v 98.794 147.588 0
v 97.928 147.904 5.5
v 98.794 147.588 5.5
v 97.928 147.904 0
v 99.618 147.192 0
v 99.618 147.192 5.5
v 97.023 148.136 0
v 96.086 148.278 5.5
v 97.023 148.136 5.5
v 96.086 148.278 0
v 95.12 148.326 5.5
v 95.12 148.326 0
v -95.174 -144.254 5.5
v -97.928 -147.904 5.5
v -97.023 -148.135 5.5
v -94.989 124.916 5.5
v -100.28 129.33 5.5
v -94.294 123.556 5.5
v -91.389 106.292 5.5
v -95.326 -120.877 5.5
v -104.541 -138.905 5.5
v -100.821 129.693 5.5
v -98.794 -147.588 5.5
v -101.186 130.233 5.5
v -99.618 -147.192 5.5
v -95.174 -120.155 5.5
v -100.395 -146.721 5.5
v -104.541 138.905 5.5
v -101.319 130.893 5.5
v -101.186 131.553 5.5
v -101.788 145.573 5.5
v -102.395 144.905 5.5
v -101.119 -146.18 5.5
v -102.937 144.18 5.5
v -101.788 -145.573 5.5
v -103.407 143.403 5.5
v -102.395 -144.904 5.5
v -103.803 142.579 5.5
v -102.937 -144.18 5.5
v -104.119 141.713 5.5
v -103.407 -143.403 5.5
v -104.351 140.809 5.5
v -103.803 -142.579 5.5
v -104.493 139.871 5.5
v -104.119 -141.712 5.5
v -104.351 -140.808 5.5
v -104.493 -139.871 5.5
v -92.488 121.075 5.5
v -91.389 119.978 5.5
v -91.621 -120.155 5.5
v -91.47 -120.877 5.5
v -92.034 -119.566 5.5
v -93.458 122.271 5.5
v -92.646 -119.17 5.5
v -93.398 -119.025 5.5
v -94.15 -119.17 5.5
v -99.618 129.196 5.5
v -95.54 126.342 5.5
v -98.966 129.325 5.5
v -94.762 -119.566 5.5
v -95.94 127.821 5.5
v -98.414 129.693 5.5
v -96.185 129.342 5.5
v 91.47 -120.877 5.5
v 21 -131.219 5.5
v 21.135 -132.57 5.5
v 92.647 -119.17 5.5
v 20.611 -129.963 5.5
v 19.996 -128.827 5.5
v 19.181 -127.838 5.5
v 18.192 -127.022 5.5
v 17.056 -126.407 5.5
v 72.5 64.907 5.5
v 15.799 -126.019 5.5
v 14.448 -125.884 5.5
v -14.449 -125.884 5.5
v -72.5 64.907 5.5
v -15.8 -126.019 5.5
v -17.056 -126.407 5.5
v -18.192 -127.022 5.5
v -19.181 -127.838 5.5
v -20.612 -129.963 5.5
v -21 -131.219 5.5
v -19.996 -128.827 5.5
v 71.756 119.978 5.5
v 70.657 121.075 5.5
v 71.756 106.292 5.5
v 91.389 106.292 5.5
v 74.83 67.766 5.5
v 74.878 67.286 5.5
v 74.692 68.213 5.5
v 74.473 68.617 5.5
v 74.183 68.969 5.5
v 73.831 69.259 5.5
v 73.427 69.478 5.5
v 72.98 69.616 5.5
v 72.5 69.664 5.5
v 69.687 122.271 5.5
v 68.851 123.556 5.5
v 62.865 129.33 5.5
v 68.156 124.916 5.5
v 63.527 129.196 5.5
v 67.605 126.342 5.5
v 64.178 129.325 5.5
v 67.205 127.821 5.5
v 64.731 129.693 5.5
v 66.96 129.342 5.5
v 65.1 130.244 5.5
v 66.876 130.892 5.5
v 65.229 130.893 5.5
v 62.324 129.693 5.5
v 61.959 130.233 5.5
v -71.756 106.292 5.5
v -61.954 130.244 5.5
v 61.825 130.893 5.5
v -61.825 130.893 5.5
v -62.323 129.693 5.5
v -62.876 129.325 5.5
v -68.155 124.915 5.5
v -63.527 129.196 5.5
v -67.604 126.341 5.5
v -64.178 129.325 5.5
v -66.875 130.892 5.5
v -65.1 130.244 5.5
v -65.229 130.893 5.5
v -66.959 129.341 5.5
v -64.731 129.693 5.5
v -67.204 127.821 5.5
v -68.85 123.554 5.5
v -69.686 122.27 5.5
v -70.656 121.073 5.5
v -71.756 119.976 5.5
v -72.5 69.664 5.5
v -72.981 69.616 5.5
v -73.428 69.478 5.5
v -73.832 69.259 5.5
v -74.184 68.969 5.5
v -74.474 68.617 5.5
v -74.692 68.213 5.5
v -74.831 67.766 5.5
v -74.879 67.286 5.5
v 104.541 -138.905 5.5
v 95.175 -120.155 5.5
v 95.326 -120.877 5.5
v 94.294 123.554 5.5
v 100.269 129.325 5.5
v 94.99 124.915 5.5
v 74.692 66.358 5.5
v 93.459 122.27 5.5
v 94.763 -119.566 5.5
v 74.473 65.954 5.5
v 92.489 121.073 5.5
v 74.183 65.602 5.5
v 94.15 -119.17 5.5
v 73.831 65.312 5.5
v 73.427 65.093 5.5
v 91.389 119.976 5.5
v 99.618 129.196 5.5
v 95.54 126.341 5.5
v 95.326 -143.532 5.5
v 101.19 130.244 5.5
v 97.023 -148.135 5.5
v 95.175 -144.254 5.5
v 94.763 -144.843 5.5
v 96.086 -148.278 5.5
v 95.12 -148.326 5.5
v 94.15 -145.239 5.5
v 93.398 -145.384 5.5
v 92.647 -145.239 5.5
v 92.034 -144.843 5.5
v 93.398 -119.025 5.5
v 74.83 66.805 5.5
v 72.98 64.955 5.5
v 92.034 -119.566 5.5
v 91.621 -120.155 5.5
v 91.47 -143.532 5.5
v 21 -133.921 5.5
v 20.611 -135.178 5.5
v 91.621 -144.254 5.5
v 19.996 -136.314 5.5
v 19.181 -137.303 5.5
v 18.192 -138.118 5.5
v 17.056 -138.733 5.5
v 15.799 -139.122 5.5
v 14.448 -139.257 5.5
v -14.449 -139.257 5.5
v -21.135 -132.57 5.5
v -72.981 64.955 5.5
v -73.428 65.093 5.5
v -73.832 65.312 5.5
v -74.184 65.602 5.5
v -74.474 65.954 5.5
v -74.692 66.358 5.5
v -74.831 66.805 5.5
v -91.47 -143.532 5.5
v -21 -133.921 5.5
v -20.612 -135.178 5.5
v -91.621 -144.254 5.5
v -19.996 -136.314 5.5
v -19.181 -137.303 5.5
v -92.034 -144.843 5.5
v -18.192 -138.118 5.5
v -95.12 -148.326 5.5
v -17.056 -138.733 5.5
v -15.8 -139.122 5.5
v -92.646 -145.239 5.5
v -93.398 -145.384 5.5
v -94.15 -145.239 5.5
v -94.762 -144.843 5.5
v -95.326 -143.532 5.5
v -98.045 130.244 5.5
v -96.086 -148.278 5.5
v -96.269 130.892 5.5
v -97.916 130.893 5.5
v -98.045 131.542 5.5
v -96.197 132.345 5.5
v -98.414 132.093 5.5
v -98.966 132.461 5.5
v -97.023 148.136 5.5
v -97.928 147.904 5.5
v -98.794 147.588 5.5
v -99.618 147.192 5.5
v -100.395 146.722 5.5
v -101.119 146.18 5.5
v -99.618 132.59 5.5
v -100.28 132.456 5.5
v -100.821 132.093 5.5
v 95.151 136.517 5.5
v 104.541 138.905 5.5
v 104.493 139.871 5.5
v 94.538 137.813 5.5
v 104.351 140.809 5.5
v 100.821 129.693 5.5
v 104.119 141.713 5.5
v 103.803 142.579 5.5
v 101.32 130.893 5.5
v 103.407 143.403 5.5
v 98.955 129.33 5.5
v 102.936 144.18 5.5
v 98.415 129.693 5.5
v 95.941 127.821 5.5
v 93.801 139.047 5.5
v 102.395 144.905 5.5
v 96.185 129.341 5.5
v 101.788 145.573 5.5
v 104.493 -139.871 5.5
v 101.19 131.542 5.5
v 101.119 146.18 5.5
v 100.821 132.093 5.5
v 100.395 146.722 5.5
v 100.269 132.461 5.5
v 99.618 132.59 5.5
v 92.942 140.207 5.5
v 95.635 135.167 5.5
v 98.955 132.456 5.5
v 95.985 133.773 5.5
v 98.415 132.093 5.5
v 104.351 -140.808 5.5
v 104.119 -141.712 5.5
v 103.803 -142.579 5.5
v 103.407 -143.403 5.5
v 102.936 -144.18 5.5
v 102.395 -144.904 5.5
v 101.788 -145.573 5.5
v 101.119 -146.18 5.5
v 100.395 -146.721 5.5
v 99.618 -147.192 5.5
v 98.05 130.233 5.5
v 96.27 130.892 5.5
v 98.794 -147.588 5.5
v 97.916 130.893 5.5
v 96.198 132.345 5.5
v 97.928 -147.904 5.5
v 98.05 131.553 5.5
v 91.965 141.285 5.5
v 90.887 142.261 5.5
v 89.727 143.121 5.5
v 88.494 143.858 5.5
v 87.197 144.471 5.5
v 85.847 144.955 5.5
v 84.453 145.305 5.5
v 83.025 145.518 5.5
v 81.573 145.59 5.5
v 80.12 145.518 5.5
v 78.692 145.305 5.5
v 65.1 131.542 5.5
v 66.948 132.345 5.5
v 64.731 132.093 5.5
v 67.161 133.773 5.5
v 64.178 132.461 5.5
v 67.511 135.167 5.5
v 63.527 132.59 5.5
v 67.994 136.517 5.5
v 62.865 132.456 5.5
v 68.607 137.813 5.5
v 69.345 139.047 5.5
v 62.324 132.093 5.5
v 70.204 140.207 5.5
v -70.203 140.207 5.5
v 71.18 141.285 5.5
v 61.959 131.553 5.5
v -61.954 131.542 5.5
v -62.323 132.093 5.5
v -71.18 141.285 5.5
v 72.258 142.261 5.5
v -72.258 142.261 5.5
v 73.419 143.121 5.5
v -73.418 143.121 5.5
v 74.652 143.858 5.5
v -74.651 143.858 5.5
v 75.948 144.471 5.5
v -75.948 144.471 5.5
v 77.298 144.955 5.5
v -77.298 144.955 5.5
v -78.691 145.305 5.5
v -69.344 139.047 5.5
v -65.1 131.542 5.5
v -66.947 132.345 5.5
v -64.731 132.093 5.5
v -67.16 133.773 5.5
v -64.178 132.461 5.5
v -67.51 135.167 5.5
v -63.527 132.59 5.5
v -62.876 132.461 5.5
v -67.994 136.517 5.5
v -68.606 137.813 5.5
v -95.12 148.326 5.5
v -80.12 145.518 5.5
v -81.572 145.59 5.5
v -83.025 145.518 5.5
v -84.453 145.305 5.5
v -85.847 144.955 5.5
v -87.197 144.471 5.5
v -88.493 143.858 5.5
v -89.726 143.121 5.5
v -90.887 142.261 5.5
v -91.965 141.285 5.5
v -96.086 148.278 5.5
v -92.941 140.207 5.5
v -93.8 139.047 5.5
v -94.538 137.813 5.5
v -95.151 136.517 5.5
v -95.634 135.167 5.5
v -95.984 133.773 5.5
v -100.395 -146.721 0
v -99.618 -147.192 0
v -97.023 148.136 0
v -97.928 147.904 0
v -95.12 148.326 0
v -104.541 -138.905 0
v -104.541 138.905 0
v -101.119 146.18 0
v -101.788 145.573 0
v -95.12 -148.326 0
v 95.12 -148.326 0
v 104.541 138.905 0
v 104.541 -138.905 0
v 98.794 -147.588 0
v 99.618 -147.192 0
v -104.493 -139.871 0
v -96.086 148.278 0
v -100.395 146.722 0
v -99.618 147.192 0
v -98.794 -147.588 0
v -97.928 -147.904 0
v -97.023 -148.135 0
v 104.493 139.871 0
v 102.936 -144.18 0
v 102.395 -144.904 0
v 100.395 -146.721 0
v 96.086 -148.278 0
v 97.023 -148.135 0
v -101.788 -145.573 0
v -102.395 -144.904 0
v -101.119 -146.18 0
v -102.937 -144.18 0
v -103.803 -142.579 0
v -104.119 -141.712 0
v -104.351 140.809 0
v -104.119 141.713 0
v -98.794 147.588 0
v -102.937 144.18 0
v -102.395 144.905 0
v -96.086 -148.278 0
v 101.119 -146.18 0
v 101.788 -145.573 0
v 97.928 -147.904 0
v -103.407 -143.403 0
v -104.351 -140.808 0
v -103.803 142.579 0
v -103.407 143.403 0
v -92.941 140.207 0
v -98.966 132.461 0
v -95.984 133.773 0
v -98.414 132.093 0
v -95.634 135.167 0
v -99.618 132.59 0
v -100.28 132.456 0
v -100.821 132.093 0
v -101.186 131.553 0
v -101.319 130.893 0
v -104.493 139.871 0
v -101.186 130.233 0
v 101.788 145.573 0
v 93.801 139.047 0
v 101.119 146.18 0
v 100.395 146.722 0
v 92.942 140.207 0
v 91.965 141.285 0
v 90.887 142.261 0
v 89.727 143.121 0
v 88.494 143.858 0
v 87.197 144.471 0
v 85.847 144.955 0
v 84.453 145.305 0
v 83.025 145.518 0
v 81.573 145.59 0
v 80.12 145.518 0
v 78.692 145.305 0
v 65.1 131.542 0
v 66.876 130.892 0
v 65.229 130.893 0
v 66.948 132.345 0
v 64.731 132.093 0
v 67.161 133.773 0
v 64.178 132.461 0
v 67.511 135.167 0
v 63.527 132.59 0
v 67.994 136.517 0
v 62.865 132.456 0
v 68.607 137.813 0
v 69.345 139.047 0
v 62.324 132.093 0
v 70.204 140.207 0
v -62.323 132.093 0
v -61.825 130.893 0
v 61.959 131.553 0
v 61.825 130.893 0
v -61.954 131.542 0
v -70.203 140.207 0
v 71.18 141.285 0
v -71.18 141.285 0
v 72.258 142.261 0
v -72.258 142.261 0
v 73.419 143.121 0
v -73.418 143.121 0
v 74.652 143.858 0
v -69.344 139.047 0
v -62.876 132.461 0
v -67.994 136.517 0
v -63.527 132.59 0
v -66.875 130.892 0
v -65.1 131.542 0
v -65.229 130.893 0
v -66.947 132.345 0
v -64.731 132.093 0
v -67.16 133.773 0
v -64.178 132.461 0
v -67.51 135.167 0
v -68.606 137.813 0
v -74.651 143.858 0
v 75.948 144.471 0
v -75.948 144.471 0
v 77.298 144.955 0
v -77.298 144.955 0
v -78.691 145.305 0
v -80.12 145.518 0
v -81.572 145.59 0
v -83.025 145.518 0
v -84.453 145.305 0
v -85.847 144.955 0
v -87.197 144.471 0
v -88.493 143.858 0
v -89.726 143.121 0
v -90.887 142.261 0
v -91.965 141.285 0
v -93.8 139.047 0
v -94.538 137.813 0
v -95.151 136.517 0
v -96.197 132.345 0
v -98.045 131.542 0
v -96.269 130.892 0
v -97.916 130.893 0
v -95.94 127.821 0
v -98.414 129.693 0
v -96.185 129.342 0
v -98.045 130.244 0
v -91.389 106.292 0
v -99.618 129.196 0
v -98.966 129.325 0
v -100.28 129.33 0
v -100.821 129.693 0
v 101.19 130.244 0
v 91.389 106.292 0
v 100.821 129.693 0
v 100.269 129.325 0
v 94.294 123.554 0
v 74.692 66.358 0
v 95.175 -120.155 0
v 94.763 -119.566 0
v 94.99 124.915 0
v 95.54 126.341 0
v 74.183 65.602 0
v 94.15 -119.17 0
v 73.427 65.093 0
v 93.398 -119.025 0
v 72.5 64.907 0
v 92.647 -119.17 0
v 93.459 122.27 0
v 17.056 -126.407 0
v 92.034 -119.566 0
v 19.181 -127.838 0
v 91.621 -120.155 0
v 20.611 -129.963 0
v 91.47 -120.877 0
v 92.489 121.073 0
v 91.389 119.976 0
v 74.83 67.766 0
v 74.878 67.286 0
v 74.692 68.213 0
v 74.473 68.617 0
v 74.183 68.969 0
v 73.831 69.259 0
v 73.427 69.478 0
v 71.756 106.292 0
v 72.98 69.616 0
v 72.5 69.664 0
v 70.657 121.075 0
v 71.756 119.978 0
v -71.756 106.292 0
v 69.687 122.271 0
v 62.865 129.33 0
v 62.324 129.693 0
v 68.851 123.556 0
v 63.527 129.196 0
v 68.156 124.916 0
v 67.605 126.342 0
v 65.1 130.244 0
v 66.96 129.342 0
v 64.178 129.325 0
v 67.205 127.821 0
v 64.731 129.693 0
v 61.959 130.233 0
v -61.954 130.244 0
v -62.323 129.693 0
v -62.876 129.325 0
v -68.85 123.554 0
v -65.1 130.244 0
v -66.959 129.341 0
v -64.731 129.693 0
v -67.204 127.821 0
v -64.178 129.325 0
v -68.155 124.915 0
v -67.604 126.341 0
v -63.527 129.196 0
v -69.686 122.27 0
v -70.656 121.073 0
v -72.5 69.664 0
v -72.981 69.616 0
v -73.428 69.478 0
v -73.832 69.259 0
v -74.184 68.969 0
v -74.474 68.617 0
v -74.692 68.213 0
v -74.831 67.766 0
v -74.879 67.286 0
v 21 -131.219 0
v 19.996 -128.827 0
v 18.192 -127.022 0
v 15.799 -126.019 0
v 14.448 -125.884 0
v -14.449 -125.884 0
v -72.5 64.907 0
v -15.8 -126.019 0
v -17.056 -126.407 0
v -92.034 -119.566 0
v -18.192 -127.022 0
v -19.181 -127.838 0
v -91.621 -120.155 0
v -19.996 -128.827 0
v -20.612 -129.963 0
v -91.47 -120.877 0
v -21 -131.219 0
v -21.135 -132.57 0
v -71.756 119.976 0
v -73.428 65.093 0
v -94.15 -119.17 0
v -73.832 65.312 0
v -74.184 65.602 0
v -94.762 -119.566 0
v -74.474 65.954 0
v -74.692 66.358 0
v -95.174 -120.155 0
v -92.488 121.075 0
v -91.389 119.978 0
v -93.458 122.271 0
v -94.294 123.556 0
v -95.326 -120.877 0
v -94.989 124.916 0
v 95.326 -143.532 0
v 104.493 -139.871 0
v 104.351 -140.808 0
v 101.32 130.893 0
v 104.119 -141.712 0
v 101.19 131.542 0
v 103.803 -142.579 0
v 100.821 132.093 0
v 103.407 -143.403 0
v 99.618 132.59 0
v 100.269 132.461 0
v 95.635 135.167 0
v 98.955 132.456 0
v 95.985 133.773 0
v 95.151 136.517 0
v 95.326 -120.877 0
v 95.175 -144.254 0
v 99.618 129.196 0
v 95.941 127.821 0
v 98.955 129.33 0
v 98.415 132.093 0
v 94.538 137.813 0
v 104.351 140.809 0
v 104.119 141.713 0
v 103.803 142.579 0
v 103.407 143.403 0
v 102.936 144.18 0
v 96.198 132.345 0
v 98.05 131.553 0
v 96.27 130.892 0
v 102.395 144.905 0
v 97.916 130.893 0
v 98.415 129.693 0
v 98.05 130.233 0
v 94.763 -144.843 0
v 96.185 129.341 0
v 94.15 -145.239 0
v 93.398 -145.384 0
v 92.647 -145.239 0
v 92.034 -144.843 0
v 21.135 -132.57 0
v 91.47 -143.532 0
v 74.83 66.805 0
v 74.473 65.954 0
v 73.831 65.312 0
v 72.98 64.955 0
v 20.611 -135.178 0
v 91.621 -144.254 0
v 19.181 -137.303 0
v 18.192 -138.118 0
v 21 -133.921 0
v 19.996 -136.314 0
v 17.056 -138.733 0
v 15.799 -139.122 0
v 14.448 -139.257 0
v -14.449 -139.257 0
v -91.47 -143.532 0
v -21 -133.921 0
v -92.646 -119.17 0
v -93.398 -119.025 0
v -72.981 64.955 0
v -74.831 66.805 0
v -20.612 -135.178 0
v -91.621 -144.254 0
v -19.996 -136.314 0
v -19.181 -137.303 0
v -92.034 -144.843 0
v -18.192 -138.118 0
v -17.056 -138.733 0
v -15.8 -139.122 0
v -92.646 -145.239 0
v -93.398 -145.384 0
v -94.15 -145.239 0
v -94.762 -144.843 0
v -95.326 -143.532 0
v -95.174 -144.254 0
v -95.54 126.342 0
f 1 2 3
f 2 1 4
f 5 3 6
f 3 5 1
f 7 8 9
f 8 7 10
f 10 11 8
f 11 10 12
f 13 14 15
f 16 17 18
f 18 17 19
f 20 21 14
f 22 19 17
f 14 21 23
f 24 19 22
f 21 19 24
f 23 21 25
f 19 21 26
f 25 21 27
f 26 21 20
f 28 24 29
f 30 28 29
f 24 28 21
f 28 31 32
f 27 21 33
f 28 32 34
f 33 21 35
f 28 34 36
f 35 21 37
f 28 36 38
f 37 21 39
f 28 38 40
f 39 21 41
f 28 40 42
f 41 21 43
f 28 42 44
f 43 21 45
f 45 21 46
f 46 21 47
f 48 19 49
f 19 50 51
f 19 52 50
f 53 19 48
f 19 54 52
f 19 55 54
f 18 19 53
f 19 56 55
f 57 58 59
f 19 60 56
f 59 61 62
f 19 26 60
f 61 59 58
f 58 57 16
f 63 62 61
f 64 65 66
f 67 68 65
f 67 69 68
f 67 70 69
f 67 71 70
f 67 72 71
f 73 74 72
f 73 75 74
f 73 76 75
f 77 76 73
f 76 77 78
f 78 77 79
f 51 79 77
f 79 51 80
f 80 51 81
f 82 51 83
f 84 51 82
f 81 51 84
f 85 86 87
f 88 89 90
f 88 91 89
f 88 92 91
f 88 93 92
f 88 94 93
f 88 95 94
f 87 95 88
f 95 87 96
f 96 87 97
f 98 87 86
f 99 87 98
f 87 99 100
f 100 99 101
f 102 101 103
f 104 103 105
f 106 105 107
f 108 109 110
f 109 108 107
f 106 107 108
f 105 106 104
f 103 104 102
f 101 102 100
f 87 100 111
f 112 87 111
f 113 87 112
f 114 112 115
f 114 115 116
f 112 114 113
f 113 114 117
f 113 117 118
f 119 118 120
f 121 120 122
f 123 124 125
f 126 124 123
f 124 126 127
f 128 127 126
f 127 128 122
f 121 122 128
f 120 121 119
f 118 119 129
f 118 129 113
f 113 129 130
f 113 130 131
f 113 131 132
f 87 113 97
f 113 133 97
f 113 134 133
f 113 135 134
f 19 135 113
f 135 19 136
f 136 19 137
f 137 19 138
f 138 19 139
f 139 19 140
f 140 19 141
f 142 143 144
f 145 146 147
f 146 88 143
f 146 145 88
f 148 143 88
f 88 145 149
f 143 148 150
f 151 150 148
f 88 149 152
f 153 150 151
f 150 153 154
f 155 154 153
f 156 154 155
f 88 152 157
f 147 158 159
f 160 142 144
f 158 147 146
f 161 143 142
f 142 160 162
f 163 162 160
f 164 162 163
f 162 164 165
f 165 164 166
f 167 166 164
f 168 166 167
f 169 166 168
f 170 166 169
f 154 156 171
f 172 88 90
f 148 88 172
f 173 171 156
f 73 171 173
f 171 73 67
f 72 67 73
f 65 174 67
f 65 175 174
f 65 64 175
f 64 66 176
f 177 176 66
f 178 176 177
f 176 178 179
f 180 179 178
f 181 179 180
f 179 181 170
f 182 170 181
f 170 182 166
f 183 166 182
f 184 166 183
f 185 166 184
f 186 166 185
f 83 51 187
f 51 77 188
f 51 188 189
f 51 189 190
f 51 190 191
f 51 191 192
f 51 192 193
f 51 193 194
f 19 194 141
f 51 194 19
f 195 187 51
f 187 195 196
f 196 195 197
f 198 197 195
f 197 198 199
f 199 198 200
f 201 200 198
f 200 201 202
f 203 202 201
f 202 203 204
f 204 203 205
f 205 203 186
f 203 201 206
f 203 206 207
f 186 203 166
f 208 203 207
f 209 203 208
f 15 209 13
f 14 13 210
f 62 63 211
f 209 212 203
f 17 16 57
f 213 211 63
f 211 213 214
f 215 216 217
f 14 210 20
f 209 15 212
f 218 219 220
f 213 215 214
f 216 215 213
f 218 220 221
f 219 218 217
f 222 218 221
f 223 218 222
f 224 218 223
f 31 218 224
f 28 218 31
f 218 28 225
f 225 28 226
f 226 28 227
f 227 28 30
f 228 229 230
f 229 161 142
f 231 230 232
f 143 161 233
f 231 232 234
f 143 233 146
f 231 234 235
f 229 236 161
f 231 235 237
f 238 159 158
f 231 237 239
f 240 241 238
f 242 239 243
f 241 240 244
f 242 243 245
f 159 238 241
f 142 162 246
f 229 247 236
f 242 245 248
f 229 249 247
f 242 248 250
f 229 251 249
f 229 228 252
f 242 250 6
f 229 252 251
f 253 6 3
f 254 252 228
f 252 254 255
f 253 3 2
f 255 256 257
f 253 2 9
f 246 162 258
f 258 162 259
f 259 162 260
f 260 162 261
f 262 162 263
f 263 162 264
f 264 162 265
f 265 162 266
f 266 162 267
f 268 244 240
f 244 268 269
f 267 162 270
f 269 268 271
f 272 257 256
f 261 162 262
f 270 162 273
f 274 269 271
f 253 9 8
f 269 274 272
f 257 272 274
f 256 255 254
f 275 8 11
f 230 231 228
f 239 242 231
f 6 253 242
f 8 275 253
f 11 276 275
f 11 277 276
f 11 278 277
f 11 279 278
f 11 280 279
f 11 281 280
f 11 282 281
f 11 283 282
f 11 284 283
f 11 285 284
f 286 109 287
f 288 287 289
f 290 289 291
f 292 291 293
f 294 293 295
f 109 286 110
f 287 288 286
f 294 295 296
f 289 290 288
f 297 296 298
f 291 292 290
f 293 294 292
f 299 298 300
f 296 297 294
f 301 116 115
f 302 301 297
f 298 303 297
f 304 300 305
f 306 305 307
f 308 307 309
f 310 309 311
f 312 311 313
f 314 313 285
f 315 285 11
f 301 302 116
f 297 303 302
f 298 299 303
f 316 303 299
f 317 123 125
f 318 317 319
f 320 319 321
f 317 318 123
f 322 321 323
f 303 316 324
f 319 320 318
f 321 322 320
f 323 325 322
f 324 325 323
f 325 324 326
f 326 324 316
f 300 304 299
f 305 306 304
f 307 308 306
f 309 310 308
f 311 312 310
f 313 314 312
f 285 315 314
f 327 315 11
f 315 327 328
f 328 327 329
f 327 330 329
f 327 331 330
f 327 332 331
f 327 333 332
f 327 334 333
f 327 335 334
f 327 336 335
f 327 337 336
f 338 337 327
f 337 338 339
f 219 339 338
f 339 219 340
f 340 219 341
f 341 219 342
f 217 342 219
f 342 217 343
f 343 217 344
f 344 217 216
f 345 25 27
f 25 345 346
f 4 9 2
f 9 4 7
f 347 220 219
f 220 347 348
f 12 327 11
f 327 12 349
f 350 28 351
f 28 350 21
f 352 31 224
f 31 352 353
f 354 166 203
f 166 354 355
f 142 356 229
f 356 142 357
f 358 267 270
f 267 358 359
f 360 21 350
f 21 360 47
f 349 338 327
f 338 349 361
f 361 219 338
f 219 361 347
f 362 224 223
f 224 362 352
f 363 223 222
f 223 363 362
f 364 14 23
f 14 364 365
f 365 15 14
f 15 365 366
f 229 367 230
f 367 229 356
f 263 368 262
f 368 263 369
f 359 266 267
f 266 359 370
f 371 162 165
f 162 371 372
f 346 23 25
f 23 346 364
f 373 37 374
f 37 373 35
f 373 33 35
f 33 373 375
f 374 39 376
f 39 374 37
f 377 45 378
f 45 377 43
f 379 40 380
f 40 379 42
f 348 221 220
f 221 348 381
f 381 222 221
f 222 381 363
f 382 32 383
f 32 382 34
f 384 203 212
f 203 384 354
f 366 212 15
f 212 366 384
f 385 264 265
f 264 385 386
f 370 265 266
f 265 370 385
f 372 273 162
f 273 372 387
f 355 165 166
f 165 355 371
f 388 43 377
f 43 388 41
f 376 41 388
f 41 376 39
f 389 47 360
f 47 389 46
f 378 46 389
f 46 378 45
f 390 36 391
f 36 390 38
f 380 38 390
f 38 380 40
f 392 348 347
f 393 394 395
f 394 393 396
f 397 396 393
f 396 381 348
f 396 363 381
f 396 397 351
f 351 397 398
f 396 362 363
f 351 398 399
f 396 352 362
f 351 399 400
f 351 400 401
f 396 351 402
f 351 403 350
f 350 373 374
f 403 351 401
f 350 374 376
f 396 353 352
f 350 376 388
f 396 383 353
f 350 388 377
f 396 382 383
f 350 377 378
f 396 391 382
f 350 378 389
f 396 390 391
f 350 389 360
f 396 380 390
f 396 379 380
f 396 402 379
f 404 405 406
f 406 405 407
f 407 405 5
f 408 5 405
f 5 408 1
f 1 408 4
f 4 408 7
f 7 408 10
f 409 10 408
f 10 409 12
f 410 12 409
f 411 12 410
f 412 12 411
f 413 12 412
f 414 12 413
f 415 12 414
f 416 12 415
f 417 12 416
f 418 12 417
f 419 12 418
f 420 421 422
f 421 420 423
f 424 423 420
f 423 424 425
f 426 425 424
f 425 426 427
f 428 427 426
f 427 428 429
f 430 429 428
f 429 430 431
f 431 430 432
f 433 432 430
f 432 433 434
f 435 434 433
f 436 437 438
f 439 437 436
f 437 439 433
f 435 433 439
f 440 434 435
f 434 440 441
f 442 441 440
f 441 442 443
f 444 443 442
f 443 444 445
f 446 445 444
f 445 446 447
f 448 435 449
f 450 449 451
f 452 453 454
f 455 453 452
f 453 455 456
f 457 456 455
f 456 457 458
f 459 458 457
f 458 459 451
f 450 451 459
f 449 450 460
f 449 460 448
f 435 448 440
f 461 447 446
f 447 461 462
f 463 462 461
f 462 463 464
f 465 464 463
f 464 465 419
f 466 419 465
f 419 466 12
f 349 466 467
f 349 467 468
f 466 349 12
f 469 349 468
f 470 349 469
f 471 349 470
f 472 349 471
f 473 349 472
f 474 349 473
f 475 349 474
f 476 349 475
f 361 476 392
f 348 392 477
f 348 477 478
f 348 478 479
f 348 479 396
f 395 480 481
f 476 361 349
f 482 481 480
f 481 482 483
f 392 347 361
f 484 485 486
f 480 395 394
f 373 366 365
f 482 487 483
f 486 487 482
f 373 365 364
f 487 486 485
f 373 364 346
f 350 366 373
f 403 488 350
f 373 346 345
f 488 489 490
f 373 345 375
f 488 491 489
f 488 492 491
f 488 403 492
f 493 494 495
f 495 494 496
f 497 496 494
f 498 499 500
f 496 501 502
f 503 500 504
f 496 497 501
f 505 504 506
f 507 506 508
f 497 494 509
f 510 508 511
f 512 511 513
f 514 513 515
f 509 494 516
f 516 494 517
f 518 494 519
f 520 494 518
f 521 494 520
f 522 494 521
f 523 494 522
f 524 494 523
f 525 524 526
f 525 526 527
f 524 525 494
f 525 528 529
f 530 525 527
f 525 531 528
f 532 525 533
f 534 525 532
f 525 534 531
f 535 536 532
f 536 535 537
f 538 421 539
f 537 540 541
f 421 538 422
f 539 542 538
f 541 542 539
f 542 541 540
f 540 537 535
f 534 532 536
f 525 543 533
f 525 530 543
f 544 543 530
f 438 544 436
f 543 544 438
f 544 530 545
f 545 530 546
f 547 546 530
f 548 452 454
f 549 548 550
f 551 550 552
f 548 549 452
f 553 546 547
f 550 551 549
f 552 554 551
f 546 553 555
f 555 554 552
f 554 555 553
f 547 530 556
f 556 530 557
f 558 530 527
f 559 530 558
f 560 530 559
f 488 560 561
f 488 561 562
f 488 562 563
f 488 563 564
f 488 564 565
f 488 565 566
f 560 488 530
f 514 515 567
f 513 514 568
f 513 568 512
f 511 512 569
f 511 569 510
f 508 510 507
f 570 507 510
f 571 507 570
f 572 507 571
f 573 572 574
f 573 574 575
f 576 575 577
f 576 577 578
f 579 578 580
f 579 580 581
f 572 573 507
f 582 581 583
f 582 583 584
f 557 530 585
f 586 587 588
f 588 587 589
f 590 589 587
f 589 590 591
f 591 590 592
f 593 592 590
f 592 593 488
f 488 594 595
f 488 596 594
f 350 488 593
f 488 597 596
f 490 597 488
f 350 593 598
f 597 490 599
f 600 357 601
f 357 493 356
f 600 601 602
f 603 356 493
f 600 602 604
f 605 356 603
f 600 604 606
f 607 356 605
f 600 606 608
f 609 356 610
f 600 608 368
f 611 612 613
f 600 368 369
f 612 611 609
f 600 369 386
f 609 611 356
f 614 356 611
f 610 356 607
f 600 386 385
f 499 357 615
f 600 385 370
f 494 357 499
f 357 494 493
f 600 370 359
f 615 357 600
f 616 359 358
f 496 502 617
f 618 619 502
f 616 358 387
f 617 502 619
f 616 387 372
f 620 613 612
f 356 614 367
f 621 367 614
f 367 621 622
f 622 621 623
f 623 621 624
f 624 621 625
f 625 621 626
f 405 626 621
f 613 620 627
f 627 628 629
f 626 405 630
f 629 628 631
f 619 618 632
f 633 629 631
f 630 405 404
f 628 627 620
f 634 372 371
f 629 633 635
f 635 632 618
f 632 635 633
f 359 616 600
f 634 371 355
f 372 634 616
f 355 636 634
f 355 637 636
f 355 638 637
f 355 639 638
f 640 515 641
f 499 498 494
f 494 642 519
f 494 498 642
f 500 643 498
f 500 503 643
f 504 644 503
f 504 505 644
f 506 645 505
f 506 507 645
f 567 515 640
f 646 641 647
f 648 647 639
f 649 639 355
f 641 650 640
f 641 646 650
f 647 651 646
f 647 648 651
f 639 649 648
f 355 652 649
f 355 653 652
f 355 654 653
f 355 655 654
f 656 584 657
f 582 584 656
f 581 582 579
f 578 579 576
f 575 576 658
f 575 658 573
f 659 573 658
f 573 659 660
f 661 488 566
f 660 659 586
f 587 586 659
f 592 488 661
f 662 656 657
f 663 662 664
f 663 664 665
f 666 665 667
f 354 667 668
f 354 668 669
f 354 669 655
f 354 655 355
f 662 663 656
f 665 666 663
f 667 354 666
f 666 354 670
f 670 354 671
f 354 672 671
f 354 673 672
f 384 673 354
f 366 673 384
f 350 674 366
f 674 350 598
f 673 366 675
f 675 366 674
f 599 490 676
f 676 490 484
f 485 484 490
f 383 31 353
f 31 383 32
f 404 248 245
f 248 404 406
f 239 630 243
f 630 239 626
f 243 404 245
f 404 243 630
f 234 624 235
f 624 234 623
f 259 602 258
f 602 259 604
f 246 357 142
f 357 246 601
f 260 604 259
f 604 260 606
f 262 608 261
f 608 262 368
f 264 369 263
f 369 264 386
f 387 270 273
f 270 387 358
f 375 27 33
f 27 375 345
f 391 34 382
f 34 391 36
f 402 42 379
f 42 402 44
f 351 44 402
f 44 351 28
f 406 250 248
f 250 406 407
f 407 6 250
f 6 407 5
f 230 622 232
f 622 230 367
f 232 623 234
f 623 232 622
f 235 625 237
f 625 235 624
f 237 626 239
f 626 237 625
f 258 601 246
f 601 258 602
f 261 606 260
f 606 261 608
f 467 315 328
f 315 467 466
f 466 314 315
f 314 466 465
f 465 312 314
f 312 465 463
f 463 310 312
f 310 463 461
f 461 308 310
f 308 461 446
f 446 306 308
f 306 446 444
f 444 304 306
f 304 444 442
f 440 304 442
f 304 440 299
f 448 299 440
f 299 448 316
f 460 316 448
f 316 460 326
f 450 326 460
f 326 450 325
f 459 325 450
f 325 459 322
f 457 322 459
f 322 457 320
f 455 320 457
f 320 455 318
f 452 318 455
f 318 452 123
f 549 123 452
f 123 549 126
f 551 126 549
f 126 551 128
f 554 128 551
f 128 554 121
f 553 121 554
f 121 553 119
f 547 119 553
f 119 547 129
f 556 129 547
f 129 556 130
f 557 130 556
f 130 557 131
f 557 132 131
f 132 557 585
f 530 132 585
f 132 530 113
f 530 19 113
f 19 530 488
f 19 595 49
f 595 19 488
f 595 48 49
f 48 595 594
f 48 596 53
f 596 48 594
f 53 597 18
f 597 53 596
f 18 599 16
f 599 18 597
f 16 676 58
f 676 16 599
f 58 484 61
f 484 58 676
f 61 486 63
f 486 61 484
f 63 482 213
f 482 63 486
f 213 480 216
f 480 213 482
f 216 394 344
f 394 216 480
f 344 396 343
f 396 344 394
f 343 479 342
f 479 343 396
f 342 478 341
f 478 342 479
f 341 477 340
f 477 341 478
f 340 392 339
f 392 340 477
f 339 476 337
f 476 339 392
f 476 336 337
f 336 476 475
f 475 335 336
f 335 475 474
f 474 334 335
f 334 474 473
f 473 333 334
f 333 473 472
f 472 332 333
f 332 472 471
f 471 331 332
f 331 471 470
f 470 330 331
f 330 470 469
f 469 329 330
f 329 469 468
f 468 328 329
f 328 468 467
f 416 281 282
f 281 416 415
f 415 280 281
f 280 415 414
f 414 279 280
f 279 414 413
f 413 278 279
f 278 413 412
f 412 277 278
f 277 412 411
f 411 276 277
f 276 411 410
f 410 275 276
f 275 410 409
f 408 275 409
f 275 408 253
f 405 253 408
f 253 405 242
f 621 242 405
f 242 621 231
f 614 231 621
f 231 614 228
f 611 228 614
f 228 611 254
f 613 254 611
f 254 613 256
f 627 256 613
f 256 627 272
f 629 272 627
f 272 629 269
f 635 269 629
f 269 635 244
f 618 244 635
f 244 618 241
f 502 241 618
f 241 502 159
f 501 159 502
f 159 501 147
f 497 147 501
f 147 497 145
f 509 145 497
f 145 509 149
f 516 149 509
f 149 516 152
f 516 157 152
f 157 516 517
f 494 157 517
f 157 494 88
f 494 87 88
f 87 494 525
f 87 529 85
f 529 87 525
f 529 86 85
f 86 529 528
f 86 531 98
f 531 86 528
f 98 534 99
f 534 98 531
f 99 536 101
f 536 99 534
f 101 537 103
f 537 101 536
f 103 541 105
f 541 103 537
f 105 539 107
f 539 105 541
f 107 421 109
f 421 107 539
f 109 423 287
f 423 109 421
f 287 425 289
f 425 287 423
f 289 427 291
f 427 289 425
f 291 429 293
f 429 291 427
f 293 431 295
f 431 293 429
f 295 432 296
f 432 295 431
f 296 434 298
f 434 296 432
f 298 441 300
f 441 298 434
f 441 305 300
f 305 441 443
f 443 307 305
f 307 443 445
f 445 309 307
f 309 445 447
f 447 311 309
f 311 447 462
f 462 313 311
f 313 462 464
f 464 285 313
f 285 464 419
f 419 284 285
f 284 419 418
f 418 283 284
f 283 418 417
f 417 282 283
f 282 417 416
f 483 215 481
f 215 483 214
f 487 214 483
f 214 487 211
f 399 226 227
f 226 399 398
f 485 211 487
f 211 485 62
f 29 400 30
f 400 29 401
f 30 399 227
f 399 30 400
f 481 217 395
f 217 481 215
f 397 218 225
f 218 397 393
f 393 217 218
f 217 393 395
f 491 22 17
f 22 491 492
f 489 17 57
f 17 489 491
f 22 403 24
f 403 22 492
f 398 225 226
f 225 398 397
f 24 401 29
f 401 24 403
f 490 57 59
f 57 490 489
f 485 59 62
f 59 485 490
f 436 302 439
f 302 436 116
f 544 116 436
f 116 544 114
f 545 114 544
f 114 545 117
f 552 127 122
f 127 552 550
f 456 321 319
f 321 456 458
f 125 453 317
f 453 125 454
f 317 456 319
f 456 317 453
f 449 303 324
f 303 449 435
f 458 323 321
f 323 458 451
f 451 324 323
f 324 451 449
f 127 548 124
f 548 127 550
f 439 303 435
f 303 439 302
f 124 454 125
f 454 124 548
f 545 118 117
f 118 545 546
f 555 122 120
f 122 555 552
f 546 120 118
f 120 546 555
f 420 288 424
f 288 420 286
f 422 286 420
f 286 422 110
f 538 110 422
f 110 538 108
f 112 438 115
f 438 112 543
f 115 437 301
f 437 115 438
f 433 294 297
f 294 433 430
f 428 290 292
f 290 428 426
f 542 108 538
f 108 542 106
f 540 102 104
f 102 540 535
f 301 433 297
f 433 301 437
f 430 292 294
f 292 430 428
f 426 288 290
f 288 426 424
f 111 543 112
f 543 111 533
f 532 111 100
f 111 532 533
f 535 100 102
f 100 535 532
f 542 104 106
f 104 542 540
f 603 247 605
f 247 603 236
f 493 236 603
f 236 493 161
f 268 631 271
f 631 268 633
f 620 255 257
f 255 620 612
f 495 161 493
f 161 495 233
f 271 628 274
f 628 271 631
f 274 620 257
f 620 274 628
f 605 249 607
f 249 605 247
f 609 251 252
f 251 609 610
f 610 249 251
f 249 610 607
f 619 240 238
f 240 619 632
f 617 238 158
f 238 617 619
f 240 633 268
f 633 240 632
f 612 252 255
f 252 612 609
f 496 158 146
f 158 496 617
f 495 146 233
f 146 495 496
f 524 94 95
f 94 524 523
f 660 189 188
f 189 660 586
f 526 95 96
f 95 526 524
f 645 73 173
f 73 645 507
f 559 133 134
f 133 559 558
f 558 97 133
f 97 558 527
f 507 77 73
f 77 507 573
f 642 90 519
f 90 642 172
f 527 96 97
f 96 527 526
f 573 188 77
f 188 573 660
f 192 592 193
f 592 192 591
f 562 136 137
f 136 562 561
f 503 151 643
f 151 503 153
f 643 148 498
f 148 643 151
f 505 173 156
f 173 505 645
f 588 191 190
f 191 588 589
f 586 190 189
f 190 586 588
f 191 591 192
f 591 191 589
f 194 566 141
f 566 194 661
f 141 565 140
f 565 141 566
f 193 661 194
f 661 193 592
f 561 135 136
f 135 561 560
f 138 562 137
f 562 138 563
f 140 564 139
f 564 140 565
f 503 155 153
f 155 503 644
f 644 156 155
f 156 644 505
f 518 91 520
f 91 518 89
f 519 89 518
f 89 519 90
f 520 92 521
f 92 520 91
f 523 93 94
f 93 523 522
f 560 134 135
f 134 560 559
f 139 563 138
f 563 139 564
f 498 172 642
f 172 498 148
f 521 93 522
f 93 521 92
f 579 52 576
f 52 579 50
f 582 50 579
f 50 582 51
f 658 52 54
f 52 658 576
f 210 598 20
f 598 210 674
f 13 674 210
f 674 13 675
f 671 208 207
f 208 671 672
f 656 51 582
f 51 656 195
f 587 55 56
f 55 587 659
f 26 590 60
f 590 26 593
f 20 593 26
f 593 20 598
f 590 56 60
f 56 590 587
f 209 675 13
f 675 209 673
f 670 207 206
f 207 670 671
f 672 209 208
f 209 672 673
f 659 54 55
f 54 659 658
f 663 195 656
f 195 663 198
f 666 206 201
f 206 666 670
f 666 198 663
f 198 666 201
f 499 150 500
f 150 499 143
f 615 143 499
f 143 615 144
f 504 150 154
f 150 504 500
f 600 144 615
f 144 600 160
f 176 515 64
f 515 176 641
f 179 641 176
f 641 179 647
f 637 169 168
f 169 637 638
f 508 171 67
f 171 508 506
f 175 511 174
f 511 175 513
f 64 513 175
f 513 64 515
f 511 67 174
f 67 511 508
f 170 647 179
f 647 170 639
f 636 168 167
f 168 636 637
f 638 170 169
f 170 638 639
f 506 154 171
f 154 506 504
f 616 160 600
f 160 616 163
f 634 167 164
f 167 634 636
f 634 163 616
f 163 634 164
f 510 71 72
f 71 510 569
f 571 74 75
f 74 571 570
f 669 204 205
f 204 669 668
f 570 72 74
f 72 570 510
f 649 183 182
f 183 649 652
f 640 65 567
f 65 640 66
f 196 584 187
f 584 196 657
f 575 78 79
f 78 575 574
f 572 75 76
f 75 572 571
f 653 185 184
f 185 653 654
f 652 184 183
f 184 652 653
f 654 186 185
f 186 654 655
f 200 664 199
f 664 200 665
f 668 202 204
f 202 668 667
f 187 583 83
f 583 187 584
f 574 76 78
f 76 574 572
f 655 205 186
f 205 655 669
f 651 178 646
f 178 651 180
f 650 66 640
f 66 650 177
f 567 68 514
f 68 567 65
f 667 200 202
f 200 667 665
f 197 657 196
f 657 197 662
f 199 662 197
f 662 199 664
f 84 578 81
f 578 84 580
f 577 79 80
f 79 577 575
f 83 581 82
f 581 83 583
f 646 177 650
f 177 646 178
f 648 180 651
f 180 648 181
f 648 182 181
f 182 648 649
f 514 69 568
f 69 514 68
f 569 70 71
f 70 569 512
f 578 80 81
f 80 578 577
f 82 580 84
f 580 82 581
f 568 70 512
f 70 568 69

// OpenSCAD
// Module names are of the form poly_<inkscape-path-id>().  As a result,
// you can associate a polygon in this OpenSCAD program with the corresponding
// SVG element in the Inkscape document by looking for the XML element with
// the attribute id="inkscape-path-id".

// fudge value is used to ensure that subtracted solids are a tad taller
// in the z dimension than the polygon being subtracted from.  This helps
// keep the resulting .stl file manifold.
fudge = 0.1;

module poly_rect41362(h)
{
  scale([25.4/90, -25.4/90, 1]) union()
  {
    difference()
    {
       linear_extrude(height=h)
         polygon([[-337.039063,-525.565433],[-340.461652,-525.393729],[-343.783224,-524.889632],[-346.987250,-524.069667],[-350.057199,-522.950358],[-352.976543,-521.548230],[-355.728752,-519.879805],[-358.297295,-517.961608],[-360.665644,-515.810163],[-362.817269,-513.441995],[-364.735640,-510.873626],[-366.404227,-508.121583],[-367.806501,-505.202388],[-368.925933,-502.132565],[-369.745992,-498.928639],[-370.250149,-495.607134],[-370.421875,-492.184573],[-370.421875,492.182633],[-370.250149,495.605222],[-369.745992,498.926793],[-368.925933,502.130818],[-367.806501,505.200767],[-366.404227,508.120110],[-364.735639,510.872318],[-362.817268,513.440860],[-360.665644,515.809208],[-358.297295,517.960831],[-355.728751,519.879201],[-352.976543,521.547788],[-350.057199,522.950061],[-346.987249,524.069492],[-343.783224,524.889550],[-340.461652,525.393707],[-337.039063,525.565433],[337.039065,525.565433],[340.461637,525.393707],[343.783197,524.889550],[346.987214,524.069492],[350.057159,522.950061],[352.976500,521.547788],[355.728709,519.879201],[358.297255,517.960831],[360.665607,515.809208],[362.817237,513.440860],[364.735614,510.872318],[366.404207,508.120110],[367.806488,505.200767],[368.925924,502.130818],[369.745988,498.926793],[370.250148,495.605222],[370.421875,492.182633],[370.421875,-492.184573],[370.250148,-495.607134],[369.745988,-498.928639],[368.925924,-502.132565],[367.806488,-505.202388],[366.404207,-508.121583],[364.735614,-510.873626],[362.817237,-513.441995],[360.665607,-515.810163],[358.297255,-517.961608],[355.728709,-519.879805],[352.976500,-521.548230],[350.057159,-522.950359],[346.987214,-524.069667],[343.783197,-524.889632],[340.461637,-525.393729],[337.039065,-525.565433],[-337.039063,-525.565433]]);
       translate([0, 0, -fudge])
         linear_extrude(height=h+2*fudge)
           polygon([[-289.035156,-515.870120],[-283.887955,-515.615247],[-278.827941,-514.860134],[-273.889266,-513.618926],[-269.106076,-511.905769],[-264.512522,-509.734808],[-260.142753,-507.120189],[-256.030917,-504.076058],[-252.211163,-500.616560],[-248.751809,-496.796677],[-245.707832,-492.684727],[-243.093377,-488.314859],[-240.922589,-483.721224],[-239.209611,-478.937970],[-237.968589,-473.999248],[-237.213665,-468.939206],[-236.958985,-463.791995],[-237.257712,-458.296235],[-238.125330,-452.907330],[-239.543521,-447.666253],[-241.493968,-442.613975],[-243.958353,-437.791470],[-246.918358,-433.239708],[-250.355664,-428.999664],[-254.251955,-425.112307],[-254.251955,-376.624027],[-323.818359,-376.624027],[-323.818359,-425.118167],[-327.714146,-429.004964],[-331.151083,-433.244364],[-334.110856,-437.795414],[-336.575154,-442.617159],[-338.525663,-447.668645],[-339.944070,-452.908915],[-340.812063,-458.297017],[-341.111328,-463.791995],[-340.856648,-468.939206],[-340.101724,-473.999248],[-338.860702,-478.937970],[-337.147724,-483.721224],[-334.976936,-488.314859],[-332.362481,-492.684727],[-329.318504,-496.796677],[-325.859149,-500.616560],[-322.039396,-504.076059],[-317.927560,-507.120190],[-313.557790,-509.734808],[-308.964236,-511.905769],[-304.181047,-513.618926],[-299.242371,-514.860134],[-294.182357,-515.615247],[-289.035156,-515.870120],[-289.035156,-515.870120]]);
       translate([0, 0, -fudge])
         linear_extrude(height=h+2*fudge)
           polygon([[289.037105,-515.870120],[294.184307,-515.615248],[299.244321,-514.860135],[304.182997,-513.618928],[308.966188,-511.905771],[313.559742,-509.734811],[317.929513,-507.120193],[322.041349,-504.076061],[325.861103,-500.616563],[329.320459,-496.796680],[332.364436,-492.684730],[334.978892,-488.314862],[337.149680,-483.721226],[338.862658,-478.937972],[340.103681,-473.999249],[340.858605,-468.939207],[341.113285,-463.791995],[340.814558,-458.296235],[339.946940,-452.907330],[338.528749,-447.666253],[336.578302,-442.613975],[334.113917,-437.791470],[331.153912,-433.239708],[327.716606,-428.999664],[323.820315,-425.112307],[323.820315,-376.624027],[254.253905,-376.624027],[254.253905,-425.118167],[250.358118,-429.004964],[246.921181,-433.244364],[243.961407,-437.795414],[241.497109,-442.617159],[239.546601,-447.668645],[238.128193,-452.908915],[237.260200,-458.297017],[236.960935,-463.791995],[237.215615,-468.939206],[237.970539,-473.999248],[239.211561,-478.937970],[240.924539,-483.721224],[243.095327,-488.314859],[245.709782,-492.684726],[248.753758,-496.796677],[252.213113,-500.616560],[256.032866,-504.076058],[260.144702,-507.120189],[264.514472,-509.734808],[269.108025,-511.905768],[273.891215,-513.618925],[278.829891,-514.860133],[283.889904,-515.615247],[289.037105,-515.870120],[289.037105,-515.870120]]);
       translate([0, 0, -fudge])
         linear_extrude(height=h+2*fudge)
           polygon([[-352.976563,-469.805667],[-350.668491,-469.348293],[-348.711758,-468.045160],[-347.404334,-466.094707],[-346.945313,-463.793948],[-347.404334,-461.493189],[-348.711758,-459.542737],[-350.668491,-458.239603],[-352.976563,-457.782229],[-355.323594,-458.254980],[-357.240105,-459.543425],[-358.532169,-461.454202],[-359.005859,-463.793948],[-358.532169,-466.133694],[-357.240105,-468.044471],[-355.323594,-469.332916],[-352.976563,-469.805667],[-352.976563,-469.805667]]);
       translate([0, 0, -fudge])
         linear_extrude(height=h+2*fudge)
           polygon([[-225.095705,-469.805667],[-222.787633,-469.348293],[-220.830900,-468.045160],[-219.523476,-466.094707],[-219.064455,-463.793948],[-219.523476,-461.493189],[-220.830900,-459.542737],[-222.787633,-458.239603],[-225.095705,-457.782229],[-227.403777,-458.239603],[-229.360510,-459.542737],[-230.667934,-461.493189],[-231.126955,-463.793948],[-230.667934,-466.094707],[-229.360510,-468.045160],[-227.403777,-469.348293],[-225.095705,-469.805667],[-225.095705,-469.805667]]);
       translate([0, 0, -fudge])
         linear_extrude(height=h+2*fudge)
           polygon([[225.095705,-469.805667],[227.403777,-469.348293],[229.360510,-468.045160],[230.667934,-466.094707],[231.126955,-463.793948],[230.667934,-461.493189],[229.360510,-459.542737],[227.403777,-458.239603],[225.095705,-457.782229],[222.748673,-458.254979],[220.832160,-459.543424],[219.540095,-461.454201],[219.066405,-463.793948],[219.540095,-466.133695],[220.832160,-468.044472],[222.748673,-469.332917],[225.095705,-469.805667],[225.095705,-469.805667]]);
       translate([0, 0, -fudge])
         linear_extrude(height=h+2*fudge)
           polygon([[352.976565,-469.805667],[355.284637,-469.348293],[357.241370,-468.045160],[358.548794,-466.094707],[359.007815,-463.793948],[358.548794,-461.493189],[357.241370,-459.542737],[355.284637,-458.239603],[352.976565,-457.782229],[350.629533,-458.254979],[348.713020,-459.543424],[347.420955,-461.454201],[346.947265,-463.793948],[347.420955,-466.133695],[348.713020,-468.044472],[350.629533,-469.332917],[352.976565,-469.805667],[352.976565,-469.805667]]);
       translate([0, 0, -fudge])
         linear_extrude(height=h+2*fudge)
           polygon([[-256.890625,-246.840827],[256.888675,-246.840827],[258.591289,-246.670197],[260.175200,-246.180563],[261.607024,-245.405306],[262.853378,-244.377810],[263.880876,-243.131457],[264.656136,-241.699631],[265.145774,-240.115713],[265.316405,-238.413087],[265.145774,-236.710459],[264.656136,-235.126541],[263.880876,-233.694716],[262.853378,-232.448366],[261.607024,-231.420873],[260.175200,-230.645619],[258.591289,-230.155986],[256.888675,-229.985357],[-256.890625,-229.985357],[-258.593268,-230.155986],[-260.177192,-230.645619],[-261.609018,-231.420873],[-262.855365,-232.448366],[-263.882853,-233.694716],[-264.658100,-235.126541],[-265.147728,-236.710459],[-265.318355,-238.413087],[-265.147728,-240.115713],[-264.658100,-241.699631],[-263.882853,-243.131457],[-262.855365,-244.377810],[-261.609018,-245.405306],[-260.177192,-246.180563],[-258.593268,-246.670197],[-256.890625,-246.840827]]);
       translate([0, 0, -fudge])
         linear_extrude(height=h+2*fudge)
           polygon([[-330.937500,421.743163],[-328.273911,422.257168],[-326.103448,423.660557],[-324.642492,425.745385],[-324.107422,428.303713],[-324.107422,508.579133],[-324.642492,511.137431],[-326.103448,513.222245],[-328.273911,514.625628],[-330.937500,515.139633],[-333.601089,514.625628],[-335.771552,513.222245],[-337.232508,511.137431],[-337.767578,508.579133],[-337.767578,428.303713],[-337.232508,425.745381],[-335.771552,423.660553],[-333.601089,422.257167],[-330.937500,421.743163]]);
       translate([0, 0, -fudge])
         linear_extrude(height=h+2*fudge)
           polygon([[330.939455,421.743163],[333.603043,422.257168],[335.773506,423.660557],[337.234464,425.745385],[337.769535,428.303713],[337.769535,508.579133],[337.234464,511.137431],[335.773506,513.222245],[333.603043,514.625628],[330.939455,515.139633],[328.275558,514.625628],[326.104425,513.222245],[324.642799,511.137431],[324.107425,508.579133],[324.107425,428.303713],[324.642799,425.745385],[326.104425,423.660557],[328.275558,422.257168],[330.939455,421.743163]]);
       translate([0, 0, -fudge])
         linear_extrude(height=h+2*fudge)
           polygon([[-51.197265,446.043943],[51.195315,446.043943],[55.981987,446.523646],[60.434934,447.900187],[64.460304,450.079713],[67.964245,452.968373],[70.852905,456.472314],[73.032431,460.497684],[74.408972,464.950631],[74.888675,469.737303],[74.408972,474.523982],[73.032431,478.976930],[70.852905,483.002295],[67.964245,486.506229],[64.460304,489.394880],[60.434934,491.574398],[55.981987,492.950932],[51.195315,493.430633],[-51.197265,493.430633],[-55.983853,492.950932],[-60.436579,491.574398],[-64.461637,489.394880],[-67.965220,486.506229],[-70.853522,483.002295],[-73.032736,478.976930],[-74.409056,474.523982],[-74.888675,469.737303],[-74.409056,464.950631],[-73.032736,460.497684],[-70.853522,456.472314],[-67.965220,452.968373],[-64.461637,450.079713],[-60.436579,447.900187],[-55.983853,446.523646],[-51.197265,446.043943]]);
    }
  }
}

poly_rect41362(5.5);
